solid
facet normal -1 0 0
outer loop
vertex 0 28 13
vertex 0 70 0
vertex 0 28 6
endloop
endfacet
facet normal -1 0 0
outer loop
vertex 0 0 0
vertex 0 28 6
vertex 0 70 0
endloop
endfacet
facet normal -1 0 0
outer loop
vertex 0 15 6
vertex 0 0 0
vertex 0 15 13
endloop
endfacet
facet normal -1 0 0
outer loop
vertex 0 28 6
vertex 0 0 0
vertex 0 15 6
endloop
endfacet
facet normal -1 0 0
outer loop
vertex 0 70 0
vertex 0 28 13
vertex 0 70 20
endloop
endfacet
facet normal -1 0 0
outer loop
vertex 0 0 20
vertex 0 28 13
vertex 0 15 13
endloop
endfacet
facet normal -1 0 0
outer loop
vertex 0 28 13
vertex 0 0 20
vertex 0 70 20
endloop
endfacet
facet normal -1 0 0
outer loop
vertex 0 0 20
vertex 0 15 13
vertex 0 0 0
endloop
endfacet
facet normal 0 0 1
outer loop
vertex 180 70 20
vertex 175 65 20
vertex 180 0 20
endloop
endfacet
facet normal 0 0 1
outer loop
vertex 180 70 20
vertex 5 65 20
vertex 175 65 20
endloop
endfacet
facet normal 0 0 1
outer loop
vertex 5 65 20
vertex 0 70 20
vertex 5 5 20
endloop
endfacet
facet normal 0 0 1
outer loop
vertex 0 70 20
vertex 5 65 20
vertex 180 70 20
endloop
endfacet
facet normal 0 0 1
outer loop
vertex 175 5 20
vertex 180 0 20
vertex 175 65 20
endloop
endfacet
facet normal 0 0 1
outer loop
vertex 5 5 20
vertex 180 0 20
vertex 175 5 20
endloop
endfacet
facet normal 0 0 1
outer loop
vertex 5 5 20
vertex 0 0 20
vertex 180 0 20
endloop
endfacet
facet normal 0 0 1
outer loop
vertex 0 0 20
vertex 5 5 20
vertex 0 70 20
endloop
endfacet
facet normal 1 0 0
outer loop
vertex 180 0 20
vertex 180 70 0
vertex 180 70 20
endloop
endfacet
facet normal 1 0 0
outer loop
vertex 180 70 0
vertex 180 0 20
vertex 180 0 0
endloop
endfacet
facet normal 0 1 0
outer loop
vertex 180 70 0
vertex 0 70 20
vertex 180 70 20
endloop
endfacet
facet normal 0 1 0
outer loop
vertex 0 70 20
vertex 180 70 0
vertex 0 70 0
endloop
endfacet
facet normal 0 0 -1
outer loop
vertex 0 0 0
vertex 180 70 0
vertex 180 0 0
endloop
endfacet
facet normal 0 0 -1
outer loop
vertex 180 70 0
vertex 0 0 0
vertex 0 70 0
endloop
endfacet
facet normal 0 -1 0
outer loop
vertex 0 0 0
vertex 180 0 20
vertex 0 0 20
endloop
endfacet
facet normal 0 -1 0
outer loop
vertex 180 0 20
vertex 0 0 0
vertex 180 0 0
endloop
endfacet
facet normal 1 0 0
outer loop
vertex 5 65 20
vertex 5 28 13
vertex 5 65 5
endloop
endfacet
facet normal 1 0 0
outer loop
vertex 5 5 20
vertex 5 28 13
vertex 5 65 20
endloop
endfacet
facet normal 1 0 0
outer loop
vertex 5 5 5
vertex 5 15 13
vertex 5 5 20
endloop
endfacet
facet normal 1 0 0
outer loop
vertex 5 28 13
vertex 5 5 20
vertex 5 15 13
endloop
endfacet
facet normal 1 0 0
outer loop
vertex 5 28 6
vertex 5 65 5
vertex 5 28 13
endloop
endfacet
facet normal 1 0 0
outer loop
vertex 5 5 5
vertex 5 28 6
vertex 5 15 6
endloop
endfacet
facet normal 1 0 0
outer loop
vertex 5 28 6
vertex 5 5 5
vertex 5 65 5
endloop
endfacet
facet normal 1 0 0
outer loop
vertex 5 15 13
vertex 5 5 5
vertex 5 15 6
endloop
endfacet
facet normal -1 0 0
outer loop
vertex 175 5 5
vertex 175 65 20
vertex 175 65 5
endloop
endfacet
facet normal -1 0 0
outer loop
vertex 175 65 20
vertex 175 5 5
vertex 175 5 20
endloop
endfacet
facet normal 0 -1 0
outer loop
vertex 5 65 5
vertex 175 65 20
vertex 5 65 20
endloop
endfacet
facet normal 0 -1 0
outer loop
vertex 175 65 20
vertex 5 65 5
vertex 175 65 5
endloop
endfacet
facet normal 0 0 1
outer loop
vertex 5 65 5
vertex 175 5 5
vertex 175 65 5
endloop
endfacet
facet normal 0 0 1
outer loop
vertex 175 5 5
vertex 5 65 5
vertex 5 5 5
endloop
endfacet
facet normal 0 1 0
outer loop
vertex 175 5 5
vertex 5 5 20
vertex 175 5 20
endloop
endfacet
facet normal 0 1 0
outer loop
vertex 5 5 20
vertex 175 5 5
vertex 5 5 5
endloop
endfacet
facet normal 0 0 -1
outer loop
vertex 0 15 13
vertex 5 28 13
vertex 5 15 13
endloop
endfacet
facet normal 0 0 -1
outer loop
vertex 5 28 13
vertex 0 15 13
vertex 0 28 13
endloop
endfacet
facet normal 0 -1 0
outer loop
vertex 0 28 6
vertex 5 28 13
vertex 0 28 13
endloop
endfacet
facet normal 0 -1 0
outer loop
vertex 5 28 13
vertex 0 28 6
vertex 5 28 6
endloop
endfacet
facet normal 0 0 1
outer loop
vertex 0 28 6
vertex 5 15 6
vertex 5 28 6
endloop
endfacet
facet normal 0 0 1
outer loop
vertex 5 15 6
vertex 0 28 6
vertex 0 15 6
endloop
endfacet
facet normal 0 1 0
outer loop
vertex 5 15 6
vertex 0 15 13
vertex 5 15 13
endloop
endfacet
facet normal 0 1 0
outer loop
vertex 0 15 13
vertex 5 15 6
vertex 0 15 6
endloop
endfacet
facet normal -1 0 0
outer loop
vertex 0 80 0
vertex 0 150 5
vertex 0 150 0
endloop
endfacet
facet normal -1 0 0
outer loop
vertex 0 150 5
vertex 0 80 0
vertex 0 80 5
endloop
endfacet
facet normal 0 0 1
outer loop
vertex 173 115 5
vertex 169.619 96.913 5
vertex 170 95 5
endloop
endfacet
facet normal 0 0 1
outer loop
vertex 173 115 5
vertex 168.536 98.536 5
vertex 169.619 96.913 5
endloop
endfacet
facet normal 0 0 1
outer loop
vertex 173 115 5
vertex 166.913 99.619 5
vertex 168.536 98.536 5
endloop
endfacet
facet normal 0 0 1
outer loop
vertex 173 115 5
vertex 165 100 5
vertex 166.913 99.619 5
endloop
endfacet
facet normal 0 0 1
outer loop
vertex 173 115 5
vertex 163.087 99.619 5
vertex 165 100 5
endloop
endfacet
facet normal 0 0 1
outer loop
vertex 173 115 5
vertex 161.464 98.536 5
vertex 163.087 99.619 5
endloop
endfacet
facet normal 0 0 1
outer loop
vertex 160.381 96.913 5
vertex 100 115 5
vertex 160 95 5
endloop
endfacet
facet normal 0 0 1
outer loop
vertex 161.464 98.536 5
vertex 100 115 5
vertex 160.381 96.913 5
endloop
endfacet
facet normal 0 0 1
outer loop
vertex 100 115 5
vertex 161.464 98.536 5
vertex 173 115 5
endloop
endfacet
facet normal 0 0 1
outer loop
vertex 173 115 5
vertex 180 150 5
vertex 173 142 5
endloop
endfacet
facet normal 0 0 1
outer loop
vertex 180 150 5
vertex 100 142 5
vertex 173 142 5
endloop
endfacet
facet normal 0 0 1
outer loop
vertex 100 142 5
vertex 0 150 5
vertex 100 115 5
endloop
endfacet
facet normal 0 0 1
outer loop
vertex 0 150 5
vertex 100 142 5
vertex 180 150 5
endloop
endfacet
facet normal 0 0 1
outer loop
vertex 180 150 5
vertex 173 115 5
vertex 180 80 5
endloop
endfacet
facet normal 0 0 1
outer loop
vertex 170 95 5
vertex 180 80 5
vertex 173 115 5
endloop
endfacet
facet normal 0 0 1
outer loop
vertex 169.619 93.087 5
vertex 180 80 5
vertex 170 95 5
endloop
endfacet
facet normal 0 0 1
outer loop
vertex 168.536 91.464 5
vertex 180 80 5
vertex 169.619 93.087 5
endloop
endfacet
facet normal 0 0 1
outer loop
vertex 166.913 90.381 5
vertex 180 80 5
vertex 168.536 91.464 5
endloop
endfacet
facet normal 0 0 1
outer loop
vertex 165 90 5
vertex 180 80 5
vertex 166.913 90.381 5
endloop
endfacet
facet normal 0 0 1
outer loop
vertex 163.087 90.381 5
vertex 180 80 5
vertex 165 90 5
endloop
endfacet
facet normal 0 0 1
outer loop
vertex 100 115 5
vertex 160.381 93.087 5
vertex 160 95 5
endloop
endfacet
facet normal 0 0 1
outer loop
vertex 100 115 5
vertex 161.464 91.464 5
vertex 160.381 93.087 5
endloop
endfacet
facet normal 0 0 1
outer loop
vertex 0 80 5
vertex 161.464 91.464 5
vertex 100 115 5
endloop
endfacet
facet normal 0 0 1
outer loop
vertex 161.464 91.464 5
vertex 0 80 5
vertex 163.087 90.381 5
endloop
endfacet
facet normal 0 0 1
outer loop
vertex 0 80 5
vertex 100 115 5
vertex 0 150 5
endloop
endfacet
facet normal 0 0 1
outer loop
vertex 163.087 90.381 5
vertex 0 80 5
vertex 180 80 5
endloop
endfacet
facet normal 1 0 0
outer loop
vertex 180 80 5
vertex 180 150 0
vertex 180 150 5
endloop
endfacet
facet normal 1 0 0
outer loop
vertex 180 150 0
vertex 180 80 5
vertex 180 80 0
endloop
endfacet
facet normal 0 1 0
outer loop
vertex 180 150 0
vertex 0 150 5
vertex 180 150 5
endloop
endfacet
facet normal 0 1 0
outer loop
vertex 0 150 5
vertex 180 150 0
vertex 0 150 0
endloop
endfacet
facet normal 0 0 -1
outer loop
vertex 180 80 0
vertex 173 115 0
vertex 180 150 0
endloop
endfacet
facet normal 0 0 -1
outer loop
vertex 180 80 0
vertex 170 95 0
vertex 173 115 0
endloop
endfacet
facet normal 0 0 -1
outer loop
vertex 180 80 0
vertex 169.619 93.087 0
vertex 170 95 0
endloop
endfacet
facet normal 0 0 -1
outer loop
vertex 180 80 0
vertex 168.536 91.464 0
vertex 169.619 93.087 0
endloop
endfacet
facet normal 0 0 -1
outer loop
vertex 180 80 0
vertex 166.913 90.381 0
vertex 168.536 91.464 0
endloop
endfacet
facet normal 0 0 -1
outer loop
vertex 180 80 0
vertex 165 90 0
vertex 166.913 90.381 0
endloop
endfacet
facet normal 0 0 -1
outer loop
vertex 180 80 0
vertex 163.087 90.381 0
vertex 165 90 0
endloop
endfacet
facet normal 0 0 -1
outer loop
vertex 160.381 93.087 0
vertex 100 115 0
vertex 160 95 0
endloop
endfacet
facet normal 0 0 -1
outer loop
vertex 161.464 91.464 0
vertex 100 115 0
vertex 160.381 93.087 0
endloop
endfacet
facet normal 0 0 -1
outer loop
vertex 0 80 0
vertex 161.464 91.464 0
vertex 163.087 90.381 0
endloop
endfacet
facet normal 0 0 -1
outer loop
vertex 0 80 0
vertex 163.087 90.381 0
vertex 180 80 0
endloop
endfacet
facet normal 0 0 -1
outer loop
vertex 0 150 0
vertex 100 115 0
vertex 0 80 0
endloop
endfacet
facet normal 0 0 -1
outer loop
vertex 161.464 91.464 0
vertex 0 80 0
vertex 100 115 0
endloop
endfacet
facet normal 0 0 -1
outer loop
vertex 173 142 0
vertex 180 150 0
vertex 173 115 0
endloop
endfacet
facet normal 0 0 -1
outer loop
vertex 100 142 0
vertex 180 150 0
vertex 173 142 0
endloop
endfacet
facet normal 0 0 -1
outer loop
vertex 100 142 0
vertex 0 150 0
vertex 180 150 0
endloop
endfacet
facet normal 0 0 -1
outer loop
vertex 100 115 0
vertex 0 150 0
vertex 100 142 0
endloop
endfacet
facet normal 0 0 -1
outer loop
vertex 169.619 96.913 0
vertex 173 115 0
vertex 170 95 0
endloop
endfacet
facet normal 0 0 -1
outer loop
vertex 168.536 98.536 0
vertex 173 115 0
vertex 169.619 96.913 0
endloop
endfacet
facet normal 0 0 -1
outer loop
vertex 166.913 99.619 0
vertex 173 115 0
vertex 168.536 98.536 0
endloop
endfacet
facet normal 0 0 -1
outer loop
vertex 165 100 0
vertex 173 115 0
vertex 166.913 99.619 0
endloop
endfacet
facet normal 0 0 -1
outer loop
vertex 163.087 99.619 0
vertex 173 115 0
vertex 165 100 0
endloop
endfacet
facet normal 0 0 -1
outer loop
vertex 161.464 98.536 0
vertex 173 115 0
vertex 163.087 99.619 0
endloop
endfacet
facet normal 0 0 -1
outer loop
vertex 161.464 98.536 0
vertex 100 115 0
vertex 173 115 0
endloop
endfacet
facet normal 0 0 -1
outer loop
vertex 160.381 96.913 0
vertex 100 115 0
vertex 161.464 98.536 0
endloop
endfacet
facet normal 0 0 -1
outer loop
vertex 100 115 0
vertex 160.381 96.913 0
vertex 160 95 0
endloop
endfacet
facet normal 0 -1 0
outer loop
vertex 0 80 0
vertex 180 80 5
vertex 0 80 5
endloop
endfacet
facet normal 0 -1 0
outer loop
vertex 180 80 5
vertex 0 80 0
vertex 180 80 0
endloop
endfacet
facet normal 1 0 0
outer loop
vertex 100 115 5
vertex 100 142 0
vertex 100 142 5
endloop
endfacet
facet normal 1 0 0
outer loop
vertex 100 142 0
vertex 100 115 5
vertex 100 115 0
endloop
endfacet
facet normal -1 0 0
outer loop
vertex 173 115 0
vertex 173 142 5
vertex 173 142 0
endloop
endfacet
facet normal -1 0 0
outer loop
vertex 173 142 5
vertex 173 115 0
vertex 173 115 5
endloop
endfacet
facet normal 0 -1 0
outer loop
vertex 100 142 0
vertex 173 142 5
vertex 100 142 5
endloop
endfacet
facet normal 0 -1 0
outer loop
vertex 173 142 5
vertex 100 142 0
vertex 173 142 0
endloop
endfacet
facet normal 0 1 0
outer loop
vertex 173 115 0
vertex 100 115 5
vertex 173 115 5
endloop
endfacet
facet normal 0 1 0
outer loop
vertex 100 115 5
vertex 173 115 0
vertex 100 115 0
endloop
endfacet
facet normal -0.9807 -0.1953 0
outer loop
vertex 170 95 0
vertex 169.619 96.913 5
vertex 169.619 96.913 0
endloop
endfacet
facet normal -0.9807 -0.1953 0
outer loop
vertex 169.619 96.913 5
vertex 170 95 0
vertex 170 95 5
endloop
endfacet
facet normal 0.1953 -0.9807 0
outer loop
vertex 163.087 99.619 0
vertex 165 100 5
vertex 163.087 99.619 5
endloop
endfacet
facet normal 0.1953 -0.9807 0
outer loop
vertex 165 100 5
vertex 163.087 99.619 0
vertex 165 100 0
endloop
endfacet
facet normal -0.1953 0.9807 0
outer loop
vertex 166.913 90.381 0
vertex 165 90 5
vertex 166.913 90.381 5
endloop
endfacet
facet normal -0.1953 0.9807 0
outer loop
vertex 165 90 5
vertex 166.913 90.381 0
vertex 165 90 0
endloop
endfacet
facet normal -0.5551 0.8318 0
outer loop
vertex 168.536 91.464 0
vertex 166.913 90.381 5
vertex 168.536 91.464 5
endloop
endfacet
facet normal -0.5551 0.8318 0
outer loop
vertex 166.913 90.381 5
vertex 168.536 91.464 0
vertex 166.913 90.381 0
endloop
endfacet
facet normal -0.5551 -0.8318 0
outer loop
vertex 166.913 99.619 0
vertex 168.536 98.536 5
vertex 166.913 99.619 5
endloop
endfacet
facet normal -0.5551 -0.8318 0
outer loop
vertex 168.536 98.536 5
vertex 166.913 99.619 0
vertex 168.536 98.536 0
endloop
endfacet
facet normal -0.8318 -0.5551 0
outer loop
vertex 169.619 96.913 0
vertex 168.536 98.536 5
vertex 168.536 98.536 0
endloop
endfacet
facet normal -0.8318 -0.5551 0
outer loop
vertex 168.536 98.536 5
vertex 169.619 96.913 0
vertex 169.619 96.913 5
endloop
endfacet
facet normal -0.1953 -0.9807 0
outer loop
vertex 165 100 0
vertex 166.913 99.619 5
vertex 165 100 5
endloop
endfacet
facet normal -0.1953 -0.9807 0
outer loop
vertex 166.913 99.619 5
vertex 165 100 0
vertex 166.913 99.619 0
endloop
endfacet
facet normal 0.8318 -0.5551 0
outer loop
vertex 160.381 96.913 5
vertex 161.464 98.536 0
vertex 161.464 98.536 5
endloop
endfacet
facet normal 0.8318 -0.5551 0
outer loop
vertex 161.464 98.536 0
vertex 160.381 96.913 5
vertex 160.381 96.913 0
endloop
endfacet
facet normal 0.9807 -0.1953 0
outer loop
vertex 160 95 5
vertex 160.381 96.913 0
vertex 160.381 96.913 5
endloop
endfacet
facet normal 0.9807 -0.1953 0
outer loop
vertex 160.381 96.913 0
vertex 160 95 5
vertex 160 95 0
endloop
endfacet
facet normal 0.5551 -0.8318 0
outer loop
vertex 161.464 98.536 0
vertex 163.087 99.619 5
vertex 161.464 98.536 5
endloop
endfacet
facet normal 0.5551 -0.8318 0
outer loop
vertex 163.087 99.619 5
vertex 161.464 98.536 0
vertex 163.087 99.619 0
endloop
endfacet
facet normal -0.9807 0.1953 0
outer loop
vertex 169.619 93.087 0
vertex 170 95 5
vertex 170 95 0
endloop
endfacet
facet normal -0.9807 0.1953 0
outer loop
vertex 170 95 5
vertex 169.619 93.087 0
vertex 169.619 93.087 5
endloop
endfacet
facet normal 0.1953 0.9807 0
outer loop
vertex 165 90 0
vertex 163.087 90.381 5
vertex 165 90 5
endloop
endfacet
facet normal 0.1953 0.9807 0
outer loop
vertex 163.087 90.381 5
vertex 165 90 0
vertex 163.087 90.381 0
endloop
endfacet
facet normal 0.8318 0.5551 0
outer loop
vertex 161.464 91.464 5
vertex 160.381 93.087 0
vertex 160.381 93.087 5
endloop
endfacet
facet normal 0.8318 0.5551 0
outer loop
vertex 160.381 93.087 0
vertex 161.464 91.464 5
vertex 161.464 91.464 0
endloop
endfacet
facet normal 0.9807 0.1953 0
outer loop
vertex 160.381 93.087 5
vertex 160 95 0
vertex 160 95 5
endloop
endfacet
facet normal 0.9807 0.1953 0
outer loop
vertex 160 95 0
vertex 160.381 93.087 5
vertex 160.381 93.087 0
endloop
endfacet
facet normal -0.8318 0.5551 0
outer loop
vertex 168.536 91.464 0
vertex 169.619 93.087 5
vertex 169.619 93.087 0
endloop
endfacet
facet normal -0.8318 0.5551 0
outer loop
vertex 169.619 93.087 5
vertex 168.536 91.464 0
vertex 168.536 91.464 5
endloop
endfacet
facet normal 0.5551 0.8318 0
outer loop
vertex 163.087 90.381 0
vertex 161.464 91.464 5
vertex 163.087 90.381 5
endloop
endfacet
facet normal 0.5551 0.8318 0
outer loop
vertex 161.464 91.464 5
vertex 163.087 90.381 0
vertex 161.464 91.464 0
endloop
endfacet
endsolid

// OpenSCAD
difference(){
    difference(){
    cube([180,70,20]);
         translate([5,5,5]) cube([170,60,15]);
    }
    
    translate([0,15,6]) cube([5,13,7]);
}


difference(){
    difference(){
    translate([0,80,0]) cube([180,70,5]);
        translate([100,115,0]) cube([73,27,5]);
    }
    translate([165,95,0]) cylinder(h=10, r1=5, r2= 5);
}
